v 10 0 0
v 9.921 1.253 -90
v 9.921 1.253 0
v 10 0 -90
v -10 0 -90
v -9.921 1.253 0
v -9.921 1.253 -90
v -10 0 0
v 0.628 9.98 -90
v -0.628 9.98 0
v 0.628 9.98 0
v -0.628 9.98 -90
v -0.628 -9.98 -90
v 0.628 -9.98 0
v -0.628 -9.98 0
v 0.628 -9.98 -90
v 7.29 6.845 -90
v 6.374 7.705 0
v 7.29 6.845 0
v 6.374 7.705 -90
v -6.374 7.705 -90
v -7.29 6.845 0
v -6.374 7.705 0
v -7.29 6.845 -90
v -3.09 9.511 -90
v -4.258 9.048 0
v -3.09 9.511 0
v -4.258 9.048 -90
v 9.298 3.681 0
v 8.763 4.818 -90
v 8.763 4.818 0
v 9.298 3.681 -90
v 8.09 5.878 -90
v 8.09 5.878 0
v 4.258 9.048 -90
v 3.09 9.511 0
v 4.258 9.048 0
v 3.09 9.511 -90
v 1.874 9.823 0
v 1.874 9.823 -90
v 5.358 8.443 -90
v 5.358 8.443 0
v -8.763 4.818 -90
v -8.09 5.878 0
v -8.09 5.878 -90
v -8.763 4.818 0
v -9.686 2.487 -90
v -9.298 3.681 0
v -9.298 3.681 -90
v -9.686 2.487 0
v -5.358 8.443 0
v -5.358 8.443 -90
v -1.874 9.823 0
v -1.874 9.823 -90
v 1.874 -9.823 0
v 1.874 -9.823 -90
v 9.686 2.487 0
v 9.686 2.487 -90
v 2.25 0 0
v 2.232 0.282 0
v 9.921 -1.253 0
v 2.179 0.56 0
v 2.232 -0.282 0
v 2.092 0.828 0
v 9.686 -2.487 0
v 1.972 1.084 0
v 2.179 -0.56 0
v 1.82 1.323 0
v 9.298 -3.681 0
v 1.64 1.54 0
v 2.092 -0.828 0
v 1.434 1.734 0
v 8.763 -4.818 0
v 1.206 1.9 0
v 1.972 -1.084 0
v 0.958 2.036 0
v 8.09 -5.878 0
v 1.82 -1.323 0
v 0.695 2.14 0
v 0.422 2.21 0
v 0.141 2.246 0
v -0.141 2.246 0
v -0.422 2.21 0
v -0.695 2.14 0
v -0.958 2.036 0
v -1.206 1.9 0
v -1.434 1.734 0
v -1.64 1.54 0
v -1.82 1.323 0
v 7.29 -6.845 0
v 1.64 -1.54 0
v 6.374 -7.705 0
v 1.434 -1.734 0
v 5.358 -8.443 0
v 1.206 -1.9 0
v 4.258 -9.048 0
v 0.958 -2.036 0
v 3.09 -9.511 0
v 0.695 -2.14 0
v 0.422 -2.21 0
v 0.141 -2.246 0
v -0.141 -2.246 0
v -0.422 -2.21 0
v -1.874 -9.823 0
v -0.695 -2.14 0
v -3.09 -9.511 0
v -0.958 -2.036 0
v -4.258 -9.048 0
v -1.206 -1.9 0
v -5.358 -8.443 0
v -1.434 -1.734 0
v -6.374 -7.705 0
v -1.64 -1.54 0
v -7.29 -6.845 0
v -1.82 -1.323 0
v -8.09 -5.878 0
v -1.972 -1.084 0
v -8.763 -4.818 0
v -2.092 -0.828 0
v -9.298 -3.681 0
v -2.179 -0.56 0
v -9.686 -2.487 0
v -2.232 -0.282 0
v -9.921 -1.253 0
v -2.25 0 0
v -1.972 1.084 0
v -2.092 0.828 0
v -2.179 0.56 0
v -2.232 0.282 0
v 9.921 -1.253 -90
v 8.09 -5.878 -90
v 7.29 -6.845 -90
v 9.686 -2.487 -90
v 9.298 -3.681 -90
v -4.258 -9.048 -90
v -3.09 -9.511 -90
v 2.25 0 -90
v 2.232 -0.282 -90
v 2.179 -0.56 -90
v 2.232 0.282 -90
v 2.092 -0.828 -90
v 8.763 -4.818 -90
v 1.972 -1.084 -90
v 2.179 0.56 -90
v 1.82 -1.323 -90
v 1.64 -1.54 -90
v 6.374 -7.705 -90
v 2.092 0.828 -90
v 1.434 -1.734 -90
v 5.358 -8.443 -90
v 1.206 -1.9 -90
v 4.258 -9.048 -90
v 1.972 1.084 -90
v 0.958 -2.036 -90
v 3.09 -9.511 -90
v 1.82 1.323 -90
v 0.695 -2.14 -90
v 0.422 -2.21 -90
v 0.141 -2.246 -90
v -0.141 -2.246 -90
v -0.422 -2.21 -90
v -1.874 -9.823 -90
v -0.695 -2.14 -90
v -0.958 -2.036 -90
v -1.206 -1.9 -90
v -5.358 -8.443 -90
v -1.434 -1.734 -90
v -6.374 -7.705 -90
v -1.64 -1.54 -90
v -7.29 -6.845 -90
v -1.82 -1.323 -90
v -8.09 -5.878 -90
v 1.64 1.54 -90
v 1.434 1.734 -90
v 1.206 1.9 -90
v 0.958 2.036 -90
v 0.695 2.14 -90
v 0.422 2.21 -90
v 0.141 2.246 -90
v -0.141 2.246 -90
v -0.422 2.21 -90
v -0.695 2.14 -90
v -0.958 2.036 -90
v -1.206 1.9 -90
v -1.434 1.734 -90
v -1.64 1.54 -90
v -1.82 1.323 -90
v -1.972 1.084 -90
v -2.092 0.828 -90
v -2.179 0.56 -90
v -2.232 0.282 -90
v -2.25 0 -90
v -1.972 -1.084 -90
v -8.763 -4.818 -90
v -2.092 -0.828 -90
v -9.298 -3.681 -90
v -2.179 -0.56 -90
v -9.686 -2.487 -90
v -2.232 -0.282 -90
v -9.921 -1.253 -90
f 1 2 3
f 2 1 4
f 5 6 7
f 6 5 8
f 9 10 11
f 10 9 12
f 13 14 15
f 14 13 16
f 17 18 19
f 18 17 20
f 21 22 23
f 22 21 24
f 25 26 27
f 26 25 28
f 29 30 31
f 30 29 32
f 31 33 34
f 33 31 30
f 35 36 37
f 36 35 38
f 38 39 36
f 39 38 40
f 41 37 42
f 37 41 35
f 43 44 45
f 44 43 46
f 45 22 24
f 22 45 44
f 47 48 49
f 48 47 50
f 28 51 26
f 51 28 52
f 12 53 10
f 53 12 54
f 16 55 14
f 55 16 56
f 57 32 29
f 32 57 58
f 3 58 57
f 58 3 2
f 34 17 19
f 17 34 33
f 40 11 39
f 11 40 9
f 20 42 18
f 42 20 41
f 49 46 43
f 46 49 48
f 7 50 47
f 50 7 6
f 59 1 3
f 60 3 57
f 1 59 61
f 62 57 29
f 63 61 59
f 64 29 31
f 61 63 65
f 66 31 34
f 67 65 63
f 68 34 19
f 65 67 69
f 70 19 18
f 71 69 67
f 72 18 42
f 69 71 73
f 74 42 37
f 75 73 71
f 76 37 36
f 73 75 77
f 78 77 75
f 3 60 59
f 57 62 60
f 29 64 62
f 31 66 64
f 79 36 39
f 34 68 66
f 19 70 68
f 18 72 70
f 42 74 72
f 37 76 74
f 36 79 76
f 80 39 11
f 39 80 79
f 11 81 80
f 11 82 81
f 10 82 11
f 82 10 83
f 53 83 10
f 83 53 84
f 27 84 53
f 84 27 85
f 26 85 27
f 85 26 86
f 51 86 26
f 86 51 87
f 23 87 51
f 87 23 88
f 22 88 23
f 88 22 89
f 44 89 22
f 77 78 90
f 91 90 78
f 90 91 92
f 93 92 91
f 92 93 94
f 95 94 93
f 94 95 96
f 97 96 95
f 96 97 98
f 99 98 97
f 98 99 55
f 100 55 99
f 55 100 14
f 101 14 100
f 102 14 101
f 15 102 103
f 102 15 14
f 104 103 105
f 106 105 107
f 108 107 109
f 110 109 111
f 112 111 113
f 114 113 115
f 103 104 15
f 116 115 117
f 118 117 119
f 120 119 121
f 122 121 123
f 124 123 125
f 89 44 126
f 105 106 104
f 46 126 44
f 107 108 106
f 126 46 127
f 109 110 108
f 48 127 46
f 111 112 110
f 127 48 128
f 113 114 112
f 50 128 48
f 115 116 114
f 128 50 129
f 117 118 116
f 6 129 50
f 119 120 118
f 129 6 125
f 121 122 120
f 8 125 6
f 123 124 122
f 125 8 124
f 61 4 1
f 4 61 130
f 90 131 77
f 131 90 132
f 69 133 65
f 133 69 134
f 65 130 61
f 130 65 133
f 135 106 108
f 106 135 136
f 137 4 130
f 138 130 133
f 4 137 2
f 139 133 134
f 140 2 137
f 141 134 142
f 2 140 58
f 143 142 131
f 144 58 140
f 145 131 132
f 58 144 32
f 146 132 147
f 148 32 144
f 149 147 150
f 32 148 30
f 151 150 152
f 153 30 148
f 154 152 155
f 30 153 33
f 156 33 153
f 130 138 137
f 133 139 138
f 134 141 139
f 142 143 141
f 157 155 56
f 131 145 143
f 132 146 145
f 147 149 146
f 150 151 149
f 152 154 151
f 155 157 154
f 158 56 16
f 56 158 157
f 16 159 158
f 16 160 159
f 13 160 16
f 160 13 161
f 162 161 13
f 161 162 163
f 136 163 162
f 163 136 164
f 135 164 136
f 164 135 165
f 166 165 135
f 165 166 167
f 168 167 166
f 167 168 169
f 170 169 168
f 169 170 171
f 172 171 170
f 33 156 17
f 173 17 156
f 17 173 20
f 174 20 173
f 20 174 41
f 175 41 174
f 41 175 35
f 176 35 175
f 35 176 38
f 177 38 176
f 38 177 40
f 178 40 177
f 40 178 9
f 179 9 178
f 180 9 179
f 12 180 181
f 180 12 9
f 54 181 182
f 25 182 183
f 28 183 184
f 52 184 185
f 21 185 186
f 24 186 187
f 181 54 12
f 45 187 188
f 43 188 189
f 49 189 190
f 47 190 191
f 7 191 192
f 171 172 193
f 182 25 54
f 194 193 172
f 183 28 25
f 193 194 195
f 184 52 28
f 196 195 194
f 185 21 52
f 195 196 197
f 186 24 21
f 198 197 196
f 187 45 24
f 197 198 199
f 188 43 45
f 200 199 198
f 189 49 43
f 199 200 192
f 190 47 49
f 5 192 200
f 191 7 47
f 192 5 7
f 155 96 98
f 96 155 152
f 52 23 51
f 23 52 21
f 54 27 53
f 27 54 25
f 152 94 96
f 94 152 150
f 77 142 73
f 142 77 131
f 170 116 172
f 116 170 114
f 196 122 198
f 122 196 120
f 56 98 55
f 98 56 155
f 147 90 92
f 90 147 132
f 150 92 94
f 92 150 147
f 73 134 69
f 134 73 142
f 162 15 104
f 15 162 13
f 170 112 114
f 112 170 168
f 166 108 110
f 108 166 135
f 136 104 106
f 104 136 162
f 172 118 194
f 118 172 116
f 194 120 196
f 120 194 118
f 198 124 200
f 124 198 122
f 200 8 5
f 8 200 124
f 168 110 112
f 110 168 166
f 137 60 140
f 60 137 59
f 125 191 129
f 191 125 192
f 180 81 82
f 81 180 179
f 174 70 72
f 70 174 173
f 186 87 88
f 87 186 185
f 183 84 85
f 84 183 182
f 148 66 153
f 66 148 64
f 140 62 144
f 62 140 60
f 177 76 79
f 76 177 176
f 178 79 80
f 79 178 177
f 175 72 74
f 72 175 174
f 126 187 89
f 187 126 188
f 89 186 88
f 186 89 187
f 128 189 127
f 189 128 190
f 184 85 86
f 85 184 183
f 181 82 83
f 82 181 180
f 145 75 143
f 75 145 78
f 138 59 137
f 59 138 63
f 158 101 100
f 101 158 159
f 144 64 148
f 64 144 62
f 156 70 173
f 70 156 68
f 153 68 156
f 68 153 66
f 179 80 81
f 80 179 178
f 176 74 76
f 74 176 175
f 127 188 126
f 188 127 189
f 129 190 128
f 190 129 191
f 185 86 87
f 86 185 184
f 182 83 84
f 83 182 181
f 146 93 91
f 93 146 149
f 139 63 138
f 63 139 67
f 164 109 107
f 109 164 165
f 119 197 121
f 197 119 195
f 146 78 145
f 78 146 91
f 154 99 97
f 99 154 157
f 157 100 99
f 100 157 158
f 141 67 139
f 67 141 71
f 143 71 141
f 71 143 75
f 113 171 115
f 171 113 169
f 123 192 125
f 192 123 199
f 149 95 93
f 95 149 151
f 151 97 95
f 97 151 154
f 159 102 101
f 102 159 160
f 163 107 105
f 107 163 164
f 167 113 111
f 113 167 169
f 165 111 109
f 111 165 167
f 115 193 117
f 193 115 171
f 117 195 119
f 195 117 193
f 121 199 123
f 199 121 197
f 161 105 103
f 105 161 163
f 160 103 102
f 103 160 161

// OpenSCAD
$fn = 50;


difference() {
	union() {
		translate(v = [0, 0, -90.0000000000]) {
			cylinder(h = 90, r = 10.0000000000);
		}
	}
	union() {
		#translate(v = [0, 0, -90]) {
			cylinder(h = 90, r = 2.2500000000);
		}
	}
}
